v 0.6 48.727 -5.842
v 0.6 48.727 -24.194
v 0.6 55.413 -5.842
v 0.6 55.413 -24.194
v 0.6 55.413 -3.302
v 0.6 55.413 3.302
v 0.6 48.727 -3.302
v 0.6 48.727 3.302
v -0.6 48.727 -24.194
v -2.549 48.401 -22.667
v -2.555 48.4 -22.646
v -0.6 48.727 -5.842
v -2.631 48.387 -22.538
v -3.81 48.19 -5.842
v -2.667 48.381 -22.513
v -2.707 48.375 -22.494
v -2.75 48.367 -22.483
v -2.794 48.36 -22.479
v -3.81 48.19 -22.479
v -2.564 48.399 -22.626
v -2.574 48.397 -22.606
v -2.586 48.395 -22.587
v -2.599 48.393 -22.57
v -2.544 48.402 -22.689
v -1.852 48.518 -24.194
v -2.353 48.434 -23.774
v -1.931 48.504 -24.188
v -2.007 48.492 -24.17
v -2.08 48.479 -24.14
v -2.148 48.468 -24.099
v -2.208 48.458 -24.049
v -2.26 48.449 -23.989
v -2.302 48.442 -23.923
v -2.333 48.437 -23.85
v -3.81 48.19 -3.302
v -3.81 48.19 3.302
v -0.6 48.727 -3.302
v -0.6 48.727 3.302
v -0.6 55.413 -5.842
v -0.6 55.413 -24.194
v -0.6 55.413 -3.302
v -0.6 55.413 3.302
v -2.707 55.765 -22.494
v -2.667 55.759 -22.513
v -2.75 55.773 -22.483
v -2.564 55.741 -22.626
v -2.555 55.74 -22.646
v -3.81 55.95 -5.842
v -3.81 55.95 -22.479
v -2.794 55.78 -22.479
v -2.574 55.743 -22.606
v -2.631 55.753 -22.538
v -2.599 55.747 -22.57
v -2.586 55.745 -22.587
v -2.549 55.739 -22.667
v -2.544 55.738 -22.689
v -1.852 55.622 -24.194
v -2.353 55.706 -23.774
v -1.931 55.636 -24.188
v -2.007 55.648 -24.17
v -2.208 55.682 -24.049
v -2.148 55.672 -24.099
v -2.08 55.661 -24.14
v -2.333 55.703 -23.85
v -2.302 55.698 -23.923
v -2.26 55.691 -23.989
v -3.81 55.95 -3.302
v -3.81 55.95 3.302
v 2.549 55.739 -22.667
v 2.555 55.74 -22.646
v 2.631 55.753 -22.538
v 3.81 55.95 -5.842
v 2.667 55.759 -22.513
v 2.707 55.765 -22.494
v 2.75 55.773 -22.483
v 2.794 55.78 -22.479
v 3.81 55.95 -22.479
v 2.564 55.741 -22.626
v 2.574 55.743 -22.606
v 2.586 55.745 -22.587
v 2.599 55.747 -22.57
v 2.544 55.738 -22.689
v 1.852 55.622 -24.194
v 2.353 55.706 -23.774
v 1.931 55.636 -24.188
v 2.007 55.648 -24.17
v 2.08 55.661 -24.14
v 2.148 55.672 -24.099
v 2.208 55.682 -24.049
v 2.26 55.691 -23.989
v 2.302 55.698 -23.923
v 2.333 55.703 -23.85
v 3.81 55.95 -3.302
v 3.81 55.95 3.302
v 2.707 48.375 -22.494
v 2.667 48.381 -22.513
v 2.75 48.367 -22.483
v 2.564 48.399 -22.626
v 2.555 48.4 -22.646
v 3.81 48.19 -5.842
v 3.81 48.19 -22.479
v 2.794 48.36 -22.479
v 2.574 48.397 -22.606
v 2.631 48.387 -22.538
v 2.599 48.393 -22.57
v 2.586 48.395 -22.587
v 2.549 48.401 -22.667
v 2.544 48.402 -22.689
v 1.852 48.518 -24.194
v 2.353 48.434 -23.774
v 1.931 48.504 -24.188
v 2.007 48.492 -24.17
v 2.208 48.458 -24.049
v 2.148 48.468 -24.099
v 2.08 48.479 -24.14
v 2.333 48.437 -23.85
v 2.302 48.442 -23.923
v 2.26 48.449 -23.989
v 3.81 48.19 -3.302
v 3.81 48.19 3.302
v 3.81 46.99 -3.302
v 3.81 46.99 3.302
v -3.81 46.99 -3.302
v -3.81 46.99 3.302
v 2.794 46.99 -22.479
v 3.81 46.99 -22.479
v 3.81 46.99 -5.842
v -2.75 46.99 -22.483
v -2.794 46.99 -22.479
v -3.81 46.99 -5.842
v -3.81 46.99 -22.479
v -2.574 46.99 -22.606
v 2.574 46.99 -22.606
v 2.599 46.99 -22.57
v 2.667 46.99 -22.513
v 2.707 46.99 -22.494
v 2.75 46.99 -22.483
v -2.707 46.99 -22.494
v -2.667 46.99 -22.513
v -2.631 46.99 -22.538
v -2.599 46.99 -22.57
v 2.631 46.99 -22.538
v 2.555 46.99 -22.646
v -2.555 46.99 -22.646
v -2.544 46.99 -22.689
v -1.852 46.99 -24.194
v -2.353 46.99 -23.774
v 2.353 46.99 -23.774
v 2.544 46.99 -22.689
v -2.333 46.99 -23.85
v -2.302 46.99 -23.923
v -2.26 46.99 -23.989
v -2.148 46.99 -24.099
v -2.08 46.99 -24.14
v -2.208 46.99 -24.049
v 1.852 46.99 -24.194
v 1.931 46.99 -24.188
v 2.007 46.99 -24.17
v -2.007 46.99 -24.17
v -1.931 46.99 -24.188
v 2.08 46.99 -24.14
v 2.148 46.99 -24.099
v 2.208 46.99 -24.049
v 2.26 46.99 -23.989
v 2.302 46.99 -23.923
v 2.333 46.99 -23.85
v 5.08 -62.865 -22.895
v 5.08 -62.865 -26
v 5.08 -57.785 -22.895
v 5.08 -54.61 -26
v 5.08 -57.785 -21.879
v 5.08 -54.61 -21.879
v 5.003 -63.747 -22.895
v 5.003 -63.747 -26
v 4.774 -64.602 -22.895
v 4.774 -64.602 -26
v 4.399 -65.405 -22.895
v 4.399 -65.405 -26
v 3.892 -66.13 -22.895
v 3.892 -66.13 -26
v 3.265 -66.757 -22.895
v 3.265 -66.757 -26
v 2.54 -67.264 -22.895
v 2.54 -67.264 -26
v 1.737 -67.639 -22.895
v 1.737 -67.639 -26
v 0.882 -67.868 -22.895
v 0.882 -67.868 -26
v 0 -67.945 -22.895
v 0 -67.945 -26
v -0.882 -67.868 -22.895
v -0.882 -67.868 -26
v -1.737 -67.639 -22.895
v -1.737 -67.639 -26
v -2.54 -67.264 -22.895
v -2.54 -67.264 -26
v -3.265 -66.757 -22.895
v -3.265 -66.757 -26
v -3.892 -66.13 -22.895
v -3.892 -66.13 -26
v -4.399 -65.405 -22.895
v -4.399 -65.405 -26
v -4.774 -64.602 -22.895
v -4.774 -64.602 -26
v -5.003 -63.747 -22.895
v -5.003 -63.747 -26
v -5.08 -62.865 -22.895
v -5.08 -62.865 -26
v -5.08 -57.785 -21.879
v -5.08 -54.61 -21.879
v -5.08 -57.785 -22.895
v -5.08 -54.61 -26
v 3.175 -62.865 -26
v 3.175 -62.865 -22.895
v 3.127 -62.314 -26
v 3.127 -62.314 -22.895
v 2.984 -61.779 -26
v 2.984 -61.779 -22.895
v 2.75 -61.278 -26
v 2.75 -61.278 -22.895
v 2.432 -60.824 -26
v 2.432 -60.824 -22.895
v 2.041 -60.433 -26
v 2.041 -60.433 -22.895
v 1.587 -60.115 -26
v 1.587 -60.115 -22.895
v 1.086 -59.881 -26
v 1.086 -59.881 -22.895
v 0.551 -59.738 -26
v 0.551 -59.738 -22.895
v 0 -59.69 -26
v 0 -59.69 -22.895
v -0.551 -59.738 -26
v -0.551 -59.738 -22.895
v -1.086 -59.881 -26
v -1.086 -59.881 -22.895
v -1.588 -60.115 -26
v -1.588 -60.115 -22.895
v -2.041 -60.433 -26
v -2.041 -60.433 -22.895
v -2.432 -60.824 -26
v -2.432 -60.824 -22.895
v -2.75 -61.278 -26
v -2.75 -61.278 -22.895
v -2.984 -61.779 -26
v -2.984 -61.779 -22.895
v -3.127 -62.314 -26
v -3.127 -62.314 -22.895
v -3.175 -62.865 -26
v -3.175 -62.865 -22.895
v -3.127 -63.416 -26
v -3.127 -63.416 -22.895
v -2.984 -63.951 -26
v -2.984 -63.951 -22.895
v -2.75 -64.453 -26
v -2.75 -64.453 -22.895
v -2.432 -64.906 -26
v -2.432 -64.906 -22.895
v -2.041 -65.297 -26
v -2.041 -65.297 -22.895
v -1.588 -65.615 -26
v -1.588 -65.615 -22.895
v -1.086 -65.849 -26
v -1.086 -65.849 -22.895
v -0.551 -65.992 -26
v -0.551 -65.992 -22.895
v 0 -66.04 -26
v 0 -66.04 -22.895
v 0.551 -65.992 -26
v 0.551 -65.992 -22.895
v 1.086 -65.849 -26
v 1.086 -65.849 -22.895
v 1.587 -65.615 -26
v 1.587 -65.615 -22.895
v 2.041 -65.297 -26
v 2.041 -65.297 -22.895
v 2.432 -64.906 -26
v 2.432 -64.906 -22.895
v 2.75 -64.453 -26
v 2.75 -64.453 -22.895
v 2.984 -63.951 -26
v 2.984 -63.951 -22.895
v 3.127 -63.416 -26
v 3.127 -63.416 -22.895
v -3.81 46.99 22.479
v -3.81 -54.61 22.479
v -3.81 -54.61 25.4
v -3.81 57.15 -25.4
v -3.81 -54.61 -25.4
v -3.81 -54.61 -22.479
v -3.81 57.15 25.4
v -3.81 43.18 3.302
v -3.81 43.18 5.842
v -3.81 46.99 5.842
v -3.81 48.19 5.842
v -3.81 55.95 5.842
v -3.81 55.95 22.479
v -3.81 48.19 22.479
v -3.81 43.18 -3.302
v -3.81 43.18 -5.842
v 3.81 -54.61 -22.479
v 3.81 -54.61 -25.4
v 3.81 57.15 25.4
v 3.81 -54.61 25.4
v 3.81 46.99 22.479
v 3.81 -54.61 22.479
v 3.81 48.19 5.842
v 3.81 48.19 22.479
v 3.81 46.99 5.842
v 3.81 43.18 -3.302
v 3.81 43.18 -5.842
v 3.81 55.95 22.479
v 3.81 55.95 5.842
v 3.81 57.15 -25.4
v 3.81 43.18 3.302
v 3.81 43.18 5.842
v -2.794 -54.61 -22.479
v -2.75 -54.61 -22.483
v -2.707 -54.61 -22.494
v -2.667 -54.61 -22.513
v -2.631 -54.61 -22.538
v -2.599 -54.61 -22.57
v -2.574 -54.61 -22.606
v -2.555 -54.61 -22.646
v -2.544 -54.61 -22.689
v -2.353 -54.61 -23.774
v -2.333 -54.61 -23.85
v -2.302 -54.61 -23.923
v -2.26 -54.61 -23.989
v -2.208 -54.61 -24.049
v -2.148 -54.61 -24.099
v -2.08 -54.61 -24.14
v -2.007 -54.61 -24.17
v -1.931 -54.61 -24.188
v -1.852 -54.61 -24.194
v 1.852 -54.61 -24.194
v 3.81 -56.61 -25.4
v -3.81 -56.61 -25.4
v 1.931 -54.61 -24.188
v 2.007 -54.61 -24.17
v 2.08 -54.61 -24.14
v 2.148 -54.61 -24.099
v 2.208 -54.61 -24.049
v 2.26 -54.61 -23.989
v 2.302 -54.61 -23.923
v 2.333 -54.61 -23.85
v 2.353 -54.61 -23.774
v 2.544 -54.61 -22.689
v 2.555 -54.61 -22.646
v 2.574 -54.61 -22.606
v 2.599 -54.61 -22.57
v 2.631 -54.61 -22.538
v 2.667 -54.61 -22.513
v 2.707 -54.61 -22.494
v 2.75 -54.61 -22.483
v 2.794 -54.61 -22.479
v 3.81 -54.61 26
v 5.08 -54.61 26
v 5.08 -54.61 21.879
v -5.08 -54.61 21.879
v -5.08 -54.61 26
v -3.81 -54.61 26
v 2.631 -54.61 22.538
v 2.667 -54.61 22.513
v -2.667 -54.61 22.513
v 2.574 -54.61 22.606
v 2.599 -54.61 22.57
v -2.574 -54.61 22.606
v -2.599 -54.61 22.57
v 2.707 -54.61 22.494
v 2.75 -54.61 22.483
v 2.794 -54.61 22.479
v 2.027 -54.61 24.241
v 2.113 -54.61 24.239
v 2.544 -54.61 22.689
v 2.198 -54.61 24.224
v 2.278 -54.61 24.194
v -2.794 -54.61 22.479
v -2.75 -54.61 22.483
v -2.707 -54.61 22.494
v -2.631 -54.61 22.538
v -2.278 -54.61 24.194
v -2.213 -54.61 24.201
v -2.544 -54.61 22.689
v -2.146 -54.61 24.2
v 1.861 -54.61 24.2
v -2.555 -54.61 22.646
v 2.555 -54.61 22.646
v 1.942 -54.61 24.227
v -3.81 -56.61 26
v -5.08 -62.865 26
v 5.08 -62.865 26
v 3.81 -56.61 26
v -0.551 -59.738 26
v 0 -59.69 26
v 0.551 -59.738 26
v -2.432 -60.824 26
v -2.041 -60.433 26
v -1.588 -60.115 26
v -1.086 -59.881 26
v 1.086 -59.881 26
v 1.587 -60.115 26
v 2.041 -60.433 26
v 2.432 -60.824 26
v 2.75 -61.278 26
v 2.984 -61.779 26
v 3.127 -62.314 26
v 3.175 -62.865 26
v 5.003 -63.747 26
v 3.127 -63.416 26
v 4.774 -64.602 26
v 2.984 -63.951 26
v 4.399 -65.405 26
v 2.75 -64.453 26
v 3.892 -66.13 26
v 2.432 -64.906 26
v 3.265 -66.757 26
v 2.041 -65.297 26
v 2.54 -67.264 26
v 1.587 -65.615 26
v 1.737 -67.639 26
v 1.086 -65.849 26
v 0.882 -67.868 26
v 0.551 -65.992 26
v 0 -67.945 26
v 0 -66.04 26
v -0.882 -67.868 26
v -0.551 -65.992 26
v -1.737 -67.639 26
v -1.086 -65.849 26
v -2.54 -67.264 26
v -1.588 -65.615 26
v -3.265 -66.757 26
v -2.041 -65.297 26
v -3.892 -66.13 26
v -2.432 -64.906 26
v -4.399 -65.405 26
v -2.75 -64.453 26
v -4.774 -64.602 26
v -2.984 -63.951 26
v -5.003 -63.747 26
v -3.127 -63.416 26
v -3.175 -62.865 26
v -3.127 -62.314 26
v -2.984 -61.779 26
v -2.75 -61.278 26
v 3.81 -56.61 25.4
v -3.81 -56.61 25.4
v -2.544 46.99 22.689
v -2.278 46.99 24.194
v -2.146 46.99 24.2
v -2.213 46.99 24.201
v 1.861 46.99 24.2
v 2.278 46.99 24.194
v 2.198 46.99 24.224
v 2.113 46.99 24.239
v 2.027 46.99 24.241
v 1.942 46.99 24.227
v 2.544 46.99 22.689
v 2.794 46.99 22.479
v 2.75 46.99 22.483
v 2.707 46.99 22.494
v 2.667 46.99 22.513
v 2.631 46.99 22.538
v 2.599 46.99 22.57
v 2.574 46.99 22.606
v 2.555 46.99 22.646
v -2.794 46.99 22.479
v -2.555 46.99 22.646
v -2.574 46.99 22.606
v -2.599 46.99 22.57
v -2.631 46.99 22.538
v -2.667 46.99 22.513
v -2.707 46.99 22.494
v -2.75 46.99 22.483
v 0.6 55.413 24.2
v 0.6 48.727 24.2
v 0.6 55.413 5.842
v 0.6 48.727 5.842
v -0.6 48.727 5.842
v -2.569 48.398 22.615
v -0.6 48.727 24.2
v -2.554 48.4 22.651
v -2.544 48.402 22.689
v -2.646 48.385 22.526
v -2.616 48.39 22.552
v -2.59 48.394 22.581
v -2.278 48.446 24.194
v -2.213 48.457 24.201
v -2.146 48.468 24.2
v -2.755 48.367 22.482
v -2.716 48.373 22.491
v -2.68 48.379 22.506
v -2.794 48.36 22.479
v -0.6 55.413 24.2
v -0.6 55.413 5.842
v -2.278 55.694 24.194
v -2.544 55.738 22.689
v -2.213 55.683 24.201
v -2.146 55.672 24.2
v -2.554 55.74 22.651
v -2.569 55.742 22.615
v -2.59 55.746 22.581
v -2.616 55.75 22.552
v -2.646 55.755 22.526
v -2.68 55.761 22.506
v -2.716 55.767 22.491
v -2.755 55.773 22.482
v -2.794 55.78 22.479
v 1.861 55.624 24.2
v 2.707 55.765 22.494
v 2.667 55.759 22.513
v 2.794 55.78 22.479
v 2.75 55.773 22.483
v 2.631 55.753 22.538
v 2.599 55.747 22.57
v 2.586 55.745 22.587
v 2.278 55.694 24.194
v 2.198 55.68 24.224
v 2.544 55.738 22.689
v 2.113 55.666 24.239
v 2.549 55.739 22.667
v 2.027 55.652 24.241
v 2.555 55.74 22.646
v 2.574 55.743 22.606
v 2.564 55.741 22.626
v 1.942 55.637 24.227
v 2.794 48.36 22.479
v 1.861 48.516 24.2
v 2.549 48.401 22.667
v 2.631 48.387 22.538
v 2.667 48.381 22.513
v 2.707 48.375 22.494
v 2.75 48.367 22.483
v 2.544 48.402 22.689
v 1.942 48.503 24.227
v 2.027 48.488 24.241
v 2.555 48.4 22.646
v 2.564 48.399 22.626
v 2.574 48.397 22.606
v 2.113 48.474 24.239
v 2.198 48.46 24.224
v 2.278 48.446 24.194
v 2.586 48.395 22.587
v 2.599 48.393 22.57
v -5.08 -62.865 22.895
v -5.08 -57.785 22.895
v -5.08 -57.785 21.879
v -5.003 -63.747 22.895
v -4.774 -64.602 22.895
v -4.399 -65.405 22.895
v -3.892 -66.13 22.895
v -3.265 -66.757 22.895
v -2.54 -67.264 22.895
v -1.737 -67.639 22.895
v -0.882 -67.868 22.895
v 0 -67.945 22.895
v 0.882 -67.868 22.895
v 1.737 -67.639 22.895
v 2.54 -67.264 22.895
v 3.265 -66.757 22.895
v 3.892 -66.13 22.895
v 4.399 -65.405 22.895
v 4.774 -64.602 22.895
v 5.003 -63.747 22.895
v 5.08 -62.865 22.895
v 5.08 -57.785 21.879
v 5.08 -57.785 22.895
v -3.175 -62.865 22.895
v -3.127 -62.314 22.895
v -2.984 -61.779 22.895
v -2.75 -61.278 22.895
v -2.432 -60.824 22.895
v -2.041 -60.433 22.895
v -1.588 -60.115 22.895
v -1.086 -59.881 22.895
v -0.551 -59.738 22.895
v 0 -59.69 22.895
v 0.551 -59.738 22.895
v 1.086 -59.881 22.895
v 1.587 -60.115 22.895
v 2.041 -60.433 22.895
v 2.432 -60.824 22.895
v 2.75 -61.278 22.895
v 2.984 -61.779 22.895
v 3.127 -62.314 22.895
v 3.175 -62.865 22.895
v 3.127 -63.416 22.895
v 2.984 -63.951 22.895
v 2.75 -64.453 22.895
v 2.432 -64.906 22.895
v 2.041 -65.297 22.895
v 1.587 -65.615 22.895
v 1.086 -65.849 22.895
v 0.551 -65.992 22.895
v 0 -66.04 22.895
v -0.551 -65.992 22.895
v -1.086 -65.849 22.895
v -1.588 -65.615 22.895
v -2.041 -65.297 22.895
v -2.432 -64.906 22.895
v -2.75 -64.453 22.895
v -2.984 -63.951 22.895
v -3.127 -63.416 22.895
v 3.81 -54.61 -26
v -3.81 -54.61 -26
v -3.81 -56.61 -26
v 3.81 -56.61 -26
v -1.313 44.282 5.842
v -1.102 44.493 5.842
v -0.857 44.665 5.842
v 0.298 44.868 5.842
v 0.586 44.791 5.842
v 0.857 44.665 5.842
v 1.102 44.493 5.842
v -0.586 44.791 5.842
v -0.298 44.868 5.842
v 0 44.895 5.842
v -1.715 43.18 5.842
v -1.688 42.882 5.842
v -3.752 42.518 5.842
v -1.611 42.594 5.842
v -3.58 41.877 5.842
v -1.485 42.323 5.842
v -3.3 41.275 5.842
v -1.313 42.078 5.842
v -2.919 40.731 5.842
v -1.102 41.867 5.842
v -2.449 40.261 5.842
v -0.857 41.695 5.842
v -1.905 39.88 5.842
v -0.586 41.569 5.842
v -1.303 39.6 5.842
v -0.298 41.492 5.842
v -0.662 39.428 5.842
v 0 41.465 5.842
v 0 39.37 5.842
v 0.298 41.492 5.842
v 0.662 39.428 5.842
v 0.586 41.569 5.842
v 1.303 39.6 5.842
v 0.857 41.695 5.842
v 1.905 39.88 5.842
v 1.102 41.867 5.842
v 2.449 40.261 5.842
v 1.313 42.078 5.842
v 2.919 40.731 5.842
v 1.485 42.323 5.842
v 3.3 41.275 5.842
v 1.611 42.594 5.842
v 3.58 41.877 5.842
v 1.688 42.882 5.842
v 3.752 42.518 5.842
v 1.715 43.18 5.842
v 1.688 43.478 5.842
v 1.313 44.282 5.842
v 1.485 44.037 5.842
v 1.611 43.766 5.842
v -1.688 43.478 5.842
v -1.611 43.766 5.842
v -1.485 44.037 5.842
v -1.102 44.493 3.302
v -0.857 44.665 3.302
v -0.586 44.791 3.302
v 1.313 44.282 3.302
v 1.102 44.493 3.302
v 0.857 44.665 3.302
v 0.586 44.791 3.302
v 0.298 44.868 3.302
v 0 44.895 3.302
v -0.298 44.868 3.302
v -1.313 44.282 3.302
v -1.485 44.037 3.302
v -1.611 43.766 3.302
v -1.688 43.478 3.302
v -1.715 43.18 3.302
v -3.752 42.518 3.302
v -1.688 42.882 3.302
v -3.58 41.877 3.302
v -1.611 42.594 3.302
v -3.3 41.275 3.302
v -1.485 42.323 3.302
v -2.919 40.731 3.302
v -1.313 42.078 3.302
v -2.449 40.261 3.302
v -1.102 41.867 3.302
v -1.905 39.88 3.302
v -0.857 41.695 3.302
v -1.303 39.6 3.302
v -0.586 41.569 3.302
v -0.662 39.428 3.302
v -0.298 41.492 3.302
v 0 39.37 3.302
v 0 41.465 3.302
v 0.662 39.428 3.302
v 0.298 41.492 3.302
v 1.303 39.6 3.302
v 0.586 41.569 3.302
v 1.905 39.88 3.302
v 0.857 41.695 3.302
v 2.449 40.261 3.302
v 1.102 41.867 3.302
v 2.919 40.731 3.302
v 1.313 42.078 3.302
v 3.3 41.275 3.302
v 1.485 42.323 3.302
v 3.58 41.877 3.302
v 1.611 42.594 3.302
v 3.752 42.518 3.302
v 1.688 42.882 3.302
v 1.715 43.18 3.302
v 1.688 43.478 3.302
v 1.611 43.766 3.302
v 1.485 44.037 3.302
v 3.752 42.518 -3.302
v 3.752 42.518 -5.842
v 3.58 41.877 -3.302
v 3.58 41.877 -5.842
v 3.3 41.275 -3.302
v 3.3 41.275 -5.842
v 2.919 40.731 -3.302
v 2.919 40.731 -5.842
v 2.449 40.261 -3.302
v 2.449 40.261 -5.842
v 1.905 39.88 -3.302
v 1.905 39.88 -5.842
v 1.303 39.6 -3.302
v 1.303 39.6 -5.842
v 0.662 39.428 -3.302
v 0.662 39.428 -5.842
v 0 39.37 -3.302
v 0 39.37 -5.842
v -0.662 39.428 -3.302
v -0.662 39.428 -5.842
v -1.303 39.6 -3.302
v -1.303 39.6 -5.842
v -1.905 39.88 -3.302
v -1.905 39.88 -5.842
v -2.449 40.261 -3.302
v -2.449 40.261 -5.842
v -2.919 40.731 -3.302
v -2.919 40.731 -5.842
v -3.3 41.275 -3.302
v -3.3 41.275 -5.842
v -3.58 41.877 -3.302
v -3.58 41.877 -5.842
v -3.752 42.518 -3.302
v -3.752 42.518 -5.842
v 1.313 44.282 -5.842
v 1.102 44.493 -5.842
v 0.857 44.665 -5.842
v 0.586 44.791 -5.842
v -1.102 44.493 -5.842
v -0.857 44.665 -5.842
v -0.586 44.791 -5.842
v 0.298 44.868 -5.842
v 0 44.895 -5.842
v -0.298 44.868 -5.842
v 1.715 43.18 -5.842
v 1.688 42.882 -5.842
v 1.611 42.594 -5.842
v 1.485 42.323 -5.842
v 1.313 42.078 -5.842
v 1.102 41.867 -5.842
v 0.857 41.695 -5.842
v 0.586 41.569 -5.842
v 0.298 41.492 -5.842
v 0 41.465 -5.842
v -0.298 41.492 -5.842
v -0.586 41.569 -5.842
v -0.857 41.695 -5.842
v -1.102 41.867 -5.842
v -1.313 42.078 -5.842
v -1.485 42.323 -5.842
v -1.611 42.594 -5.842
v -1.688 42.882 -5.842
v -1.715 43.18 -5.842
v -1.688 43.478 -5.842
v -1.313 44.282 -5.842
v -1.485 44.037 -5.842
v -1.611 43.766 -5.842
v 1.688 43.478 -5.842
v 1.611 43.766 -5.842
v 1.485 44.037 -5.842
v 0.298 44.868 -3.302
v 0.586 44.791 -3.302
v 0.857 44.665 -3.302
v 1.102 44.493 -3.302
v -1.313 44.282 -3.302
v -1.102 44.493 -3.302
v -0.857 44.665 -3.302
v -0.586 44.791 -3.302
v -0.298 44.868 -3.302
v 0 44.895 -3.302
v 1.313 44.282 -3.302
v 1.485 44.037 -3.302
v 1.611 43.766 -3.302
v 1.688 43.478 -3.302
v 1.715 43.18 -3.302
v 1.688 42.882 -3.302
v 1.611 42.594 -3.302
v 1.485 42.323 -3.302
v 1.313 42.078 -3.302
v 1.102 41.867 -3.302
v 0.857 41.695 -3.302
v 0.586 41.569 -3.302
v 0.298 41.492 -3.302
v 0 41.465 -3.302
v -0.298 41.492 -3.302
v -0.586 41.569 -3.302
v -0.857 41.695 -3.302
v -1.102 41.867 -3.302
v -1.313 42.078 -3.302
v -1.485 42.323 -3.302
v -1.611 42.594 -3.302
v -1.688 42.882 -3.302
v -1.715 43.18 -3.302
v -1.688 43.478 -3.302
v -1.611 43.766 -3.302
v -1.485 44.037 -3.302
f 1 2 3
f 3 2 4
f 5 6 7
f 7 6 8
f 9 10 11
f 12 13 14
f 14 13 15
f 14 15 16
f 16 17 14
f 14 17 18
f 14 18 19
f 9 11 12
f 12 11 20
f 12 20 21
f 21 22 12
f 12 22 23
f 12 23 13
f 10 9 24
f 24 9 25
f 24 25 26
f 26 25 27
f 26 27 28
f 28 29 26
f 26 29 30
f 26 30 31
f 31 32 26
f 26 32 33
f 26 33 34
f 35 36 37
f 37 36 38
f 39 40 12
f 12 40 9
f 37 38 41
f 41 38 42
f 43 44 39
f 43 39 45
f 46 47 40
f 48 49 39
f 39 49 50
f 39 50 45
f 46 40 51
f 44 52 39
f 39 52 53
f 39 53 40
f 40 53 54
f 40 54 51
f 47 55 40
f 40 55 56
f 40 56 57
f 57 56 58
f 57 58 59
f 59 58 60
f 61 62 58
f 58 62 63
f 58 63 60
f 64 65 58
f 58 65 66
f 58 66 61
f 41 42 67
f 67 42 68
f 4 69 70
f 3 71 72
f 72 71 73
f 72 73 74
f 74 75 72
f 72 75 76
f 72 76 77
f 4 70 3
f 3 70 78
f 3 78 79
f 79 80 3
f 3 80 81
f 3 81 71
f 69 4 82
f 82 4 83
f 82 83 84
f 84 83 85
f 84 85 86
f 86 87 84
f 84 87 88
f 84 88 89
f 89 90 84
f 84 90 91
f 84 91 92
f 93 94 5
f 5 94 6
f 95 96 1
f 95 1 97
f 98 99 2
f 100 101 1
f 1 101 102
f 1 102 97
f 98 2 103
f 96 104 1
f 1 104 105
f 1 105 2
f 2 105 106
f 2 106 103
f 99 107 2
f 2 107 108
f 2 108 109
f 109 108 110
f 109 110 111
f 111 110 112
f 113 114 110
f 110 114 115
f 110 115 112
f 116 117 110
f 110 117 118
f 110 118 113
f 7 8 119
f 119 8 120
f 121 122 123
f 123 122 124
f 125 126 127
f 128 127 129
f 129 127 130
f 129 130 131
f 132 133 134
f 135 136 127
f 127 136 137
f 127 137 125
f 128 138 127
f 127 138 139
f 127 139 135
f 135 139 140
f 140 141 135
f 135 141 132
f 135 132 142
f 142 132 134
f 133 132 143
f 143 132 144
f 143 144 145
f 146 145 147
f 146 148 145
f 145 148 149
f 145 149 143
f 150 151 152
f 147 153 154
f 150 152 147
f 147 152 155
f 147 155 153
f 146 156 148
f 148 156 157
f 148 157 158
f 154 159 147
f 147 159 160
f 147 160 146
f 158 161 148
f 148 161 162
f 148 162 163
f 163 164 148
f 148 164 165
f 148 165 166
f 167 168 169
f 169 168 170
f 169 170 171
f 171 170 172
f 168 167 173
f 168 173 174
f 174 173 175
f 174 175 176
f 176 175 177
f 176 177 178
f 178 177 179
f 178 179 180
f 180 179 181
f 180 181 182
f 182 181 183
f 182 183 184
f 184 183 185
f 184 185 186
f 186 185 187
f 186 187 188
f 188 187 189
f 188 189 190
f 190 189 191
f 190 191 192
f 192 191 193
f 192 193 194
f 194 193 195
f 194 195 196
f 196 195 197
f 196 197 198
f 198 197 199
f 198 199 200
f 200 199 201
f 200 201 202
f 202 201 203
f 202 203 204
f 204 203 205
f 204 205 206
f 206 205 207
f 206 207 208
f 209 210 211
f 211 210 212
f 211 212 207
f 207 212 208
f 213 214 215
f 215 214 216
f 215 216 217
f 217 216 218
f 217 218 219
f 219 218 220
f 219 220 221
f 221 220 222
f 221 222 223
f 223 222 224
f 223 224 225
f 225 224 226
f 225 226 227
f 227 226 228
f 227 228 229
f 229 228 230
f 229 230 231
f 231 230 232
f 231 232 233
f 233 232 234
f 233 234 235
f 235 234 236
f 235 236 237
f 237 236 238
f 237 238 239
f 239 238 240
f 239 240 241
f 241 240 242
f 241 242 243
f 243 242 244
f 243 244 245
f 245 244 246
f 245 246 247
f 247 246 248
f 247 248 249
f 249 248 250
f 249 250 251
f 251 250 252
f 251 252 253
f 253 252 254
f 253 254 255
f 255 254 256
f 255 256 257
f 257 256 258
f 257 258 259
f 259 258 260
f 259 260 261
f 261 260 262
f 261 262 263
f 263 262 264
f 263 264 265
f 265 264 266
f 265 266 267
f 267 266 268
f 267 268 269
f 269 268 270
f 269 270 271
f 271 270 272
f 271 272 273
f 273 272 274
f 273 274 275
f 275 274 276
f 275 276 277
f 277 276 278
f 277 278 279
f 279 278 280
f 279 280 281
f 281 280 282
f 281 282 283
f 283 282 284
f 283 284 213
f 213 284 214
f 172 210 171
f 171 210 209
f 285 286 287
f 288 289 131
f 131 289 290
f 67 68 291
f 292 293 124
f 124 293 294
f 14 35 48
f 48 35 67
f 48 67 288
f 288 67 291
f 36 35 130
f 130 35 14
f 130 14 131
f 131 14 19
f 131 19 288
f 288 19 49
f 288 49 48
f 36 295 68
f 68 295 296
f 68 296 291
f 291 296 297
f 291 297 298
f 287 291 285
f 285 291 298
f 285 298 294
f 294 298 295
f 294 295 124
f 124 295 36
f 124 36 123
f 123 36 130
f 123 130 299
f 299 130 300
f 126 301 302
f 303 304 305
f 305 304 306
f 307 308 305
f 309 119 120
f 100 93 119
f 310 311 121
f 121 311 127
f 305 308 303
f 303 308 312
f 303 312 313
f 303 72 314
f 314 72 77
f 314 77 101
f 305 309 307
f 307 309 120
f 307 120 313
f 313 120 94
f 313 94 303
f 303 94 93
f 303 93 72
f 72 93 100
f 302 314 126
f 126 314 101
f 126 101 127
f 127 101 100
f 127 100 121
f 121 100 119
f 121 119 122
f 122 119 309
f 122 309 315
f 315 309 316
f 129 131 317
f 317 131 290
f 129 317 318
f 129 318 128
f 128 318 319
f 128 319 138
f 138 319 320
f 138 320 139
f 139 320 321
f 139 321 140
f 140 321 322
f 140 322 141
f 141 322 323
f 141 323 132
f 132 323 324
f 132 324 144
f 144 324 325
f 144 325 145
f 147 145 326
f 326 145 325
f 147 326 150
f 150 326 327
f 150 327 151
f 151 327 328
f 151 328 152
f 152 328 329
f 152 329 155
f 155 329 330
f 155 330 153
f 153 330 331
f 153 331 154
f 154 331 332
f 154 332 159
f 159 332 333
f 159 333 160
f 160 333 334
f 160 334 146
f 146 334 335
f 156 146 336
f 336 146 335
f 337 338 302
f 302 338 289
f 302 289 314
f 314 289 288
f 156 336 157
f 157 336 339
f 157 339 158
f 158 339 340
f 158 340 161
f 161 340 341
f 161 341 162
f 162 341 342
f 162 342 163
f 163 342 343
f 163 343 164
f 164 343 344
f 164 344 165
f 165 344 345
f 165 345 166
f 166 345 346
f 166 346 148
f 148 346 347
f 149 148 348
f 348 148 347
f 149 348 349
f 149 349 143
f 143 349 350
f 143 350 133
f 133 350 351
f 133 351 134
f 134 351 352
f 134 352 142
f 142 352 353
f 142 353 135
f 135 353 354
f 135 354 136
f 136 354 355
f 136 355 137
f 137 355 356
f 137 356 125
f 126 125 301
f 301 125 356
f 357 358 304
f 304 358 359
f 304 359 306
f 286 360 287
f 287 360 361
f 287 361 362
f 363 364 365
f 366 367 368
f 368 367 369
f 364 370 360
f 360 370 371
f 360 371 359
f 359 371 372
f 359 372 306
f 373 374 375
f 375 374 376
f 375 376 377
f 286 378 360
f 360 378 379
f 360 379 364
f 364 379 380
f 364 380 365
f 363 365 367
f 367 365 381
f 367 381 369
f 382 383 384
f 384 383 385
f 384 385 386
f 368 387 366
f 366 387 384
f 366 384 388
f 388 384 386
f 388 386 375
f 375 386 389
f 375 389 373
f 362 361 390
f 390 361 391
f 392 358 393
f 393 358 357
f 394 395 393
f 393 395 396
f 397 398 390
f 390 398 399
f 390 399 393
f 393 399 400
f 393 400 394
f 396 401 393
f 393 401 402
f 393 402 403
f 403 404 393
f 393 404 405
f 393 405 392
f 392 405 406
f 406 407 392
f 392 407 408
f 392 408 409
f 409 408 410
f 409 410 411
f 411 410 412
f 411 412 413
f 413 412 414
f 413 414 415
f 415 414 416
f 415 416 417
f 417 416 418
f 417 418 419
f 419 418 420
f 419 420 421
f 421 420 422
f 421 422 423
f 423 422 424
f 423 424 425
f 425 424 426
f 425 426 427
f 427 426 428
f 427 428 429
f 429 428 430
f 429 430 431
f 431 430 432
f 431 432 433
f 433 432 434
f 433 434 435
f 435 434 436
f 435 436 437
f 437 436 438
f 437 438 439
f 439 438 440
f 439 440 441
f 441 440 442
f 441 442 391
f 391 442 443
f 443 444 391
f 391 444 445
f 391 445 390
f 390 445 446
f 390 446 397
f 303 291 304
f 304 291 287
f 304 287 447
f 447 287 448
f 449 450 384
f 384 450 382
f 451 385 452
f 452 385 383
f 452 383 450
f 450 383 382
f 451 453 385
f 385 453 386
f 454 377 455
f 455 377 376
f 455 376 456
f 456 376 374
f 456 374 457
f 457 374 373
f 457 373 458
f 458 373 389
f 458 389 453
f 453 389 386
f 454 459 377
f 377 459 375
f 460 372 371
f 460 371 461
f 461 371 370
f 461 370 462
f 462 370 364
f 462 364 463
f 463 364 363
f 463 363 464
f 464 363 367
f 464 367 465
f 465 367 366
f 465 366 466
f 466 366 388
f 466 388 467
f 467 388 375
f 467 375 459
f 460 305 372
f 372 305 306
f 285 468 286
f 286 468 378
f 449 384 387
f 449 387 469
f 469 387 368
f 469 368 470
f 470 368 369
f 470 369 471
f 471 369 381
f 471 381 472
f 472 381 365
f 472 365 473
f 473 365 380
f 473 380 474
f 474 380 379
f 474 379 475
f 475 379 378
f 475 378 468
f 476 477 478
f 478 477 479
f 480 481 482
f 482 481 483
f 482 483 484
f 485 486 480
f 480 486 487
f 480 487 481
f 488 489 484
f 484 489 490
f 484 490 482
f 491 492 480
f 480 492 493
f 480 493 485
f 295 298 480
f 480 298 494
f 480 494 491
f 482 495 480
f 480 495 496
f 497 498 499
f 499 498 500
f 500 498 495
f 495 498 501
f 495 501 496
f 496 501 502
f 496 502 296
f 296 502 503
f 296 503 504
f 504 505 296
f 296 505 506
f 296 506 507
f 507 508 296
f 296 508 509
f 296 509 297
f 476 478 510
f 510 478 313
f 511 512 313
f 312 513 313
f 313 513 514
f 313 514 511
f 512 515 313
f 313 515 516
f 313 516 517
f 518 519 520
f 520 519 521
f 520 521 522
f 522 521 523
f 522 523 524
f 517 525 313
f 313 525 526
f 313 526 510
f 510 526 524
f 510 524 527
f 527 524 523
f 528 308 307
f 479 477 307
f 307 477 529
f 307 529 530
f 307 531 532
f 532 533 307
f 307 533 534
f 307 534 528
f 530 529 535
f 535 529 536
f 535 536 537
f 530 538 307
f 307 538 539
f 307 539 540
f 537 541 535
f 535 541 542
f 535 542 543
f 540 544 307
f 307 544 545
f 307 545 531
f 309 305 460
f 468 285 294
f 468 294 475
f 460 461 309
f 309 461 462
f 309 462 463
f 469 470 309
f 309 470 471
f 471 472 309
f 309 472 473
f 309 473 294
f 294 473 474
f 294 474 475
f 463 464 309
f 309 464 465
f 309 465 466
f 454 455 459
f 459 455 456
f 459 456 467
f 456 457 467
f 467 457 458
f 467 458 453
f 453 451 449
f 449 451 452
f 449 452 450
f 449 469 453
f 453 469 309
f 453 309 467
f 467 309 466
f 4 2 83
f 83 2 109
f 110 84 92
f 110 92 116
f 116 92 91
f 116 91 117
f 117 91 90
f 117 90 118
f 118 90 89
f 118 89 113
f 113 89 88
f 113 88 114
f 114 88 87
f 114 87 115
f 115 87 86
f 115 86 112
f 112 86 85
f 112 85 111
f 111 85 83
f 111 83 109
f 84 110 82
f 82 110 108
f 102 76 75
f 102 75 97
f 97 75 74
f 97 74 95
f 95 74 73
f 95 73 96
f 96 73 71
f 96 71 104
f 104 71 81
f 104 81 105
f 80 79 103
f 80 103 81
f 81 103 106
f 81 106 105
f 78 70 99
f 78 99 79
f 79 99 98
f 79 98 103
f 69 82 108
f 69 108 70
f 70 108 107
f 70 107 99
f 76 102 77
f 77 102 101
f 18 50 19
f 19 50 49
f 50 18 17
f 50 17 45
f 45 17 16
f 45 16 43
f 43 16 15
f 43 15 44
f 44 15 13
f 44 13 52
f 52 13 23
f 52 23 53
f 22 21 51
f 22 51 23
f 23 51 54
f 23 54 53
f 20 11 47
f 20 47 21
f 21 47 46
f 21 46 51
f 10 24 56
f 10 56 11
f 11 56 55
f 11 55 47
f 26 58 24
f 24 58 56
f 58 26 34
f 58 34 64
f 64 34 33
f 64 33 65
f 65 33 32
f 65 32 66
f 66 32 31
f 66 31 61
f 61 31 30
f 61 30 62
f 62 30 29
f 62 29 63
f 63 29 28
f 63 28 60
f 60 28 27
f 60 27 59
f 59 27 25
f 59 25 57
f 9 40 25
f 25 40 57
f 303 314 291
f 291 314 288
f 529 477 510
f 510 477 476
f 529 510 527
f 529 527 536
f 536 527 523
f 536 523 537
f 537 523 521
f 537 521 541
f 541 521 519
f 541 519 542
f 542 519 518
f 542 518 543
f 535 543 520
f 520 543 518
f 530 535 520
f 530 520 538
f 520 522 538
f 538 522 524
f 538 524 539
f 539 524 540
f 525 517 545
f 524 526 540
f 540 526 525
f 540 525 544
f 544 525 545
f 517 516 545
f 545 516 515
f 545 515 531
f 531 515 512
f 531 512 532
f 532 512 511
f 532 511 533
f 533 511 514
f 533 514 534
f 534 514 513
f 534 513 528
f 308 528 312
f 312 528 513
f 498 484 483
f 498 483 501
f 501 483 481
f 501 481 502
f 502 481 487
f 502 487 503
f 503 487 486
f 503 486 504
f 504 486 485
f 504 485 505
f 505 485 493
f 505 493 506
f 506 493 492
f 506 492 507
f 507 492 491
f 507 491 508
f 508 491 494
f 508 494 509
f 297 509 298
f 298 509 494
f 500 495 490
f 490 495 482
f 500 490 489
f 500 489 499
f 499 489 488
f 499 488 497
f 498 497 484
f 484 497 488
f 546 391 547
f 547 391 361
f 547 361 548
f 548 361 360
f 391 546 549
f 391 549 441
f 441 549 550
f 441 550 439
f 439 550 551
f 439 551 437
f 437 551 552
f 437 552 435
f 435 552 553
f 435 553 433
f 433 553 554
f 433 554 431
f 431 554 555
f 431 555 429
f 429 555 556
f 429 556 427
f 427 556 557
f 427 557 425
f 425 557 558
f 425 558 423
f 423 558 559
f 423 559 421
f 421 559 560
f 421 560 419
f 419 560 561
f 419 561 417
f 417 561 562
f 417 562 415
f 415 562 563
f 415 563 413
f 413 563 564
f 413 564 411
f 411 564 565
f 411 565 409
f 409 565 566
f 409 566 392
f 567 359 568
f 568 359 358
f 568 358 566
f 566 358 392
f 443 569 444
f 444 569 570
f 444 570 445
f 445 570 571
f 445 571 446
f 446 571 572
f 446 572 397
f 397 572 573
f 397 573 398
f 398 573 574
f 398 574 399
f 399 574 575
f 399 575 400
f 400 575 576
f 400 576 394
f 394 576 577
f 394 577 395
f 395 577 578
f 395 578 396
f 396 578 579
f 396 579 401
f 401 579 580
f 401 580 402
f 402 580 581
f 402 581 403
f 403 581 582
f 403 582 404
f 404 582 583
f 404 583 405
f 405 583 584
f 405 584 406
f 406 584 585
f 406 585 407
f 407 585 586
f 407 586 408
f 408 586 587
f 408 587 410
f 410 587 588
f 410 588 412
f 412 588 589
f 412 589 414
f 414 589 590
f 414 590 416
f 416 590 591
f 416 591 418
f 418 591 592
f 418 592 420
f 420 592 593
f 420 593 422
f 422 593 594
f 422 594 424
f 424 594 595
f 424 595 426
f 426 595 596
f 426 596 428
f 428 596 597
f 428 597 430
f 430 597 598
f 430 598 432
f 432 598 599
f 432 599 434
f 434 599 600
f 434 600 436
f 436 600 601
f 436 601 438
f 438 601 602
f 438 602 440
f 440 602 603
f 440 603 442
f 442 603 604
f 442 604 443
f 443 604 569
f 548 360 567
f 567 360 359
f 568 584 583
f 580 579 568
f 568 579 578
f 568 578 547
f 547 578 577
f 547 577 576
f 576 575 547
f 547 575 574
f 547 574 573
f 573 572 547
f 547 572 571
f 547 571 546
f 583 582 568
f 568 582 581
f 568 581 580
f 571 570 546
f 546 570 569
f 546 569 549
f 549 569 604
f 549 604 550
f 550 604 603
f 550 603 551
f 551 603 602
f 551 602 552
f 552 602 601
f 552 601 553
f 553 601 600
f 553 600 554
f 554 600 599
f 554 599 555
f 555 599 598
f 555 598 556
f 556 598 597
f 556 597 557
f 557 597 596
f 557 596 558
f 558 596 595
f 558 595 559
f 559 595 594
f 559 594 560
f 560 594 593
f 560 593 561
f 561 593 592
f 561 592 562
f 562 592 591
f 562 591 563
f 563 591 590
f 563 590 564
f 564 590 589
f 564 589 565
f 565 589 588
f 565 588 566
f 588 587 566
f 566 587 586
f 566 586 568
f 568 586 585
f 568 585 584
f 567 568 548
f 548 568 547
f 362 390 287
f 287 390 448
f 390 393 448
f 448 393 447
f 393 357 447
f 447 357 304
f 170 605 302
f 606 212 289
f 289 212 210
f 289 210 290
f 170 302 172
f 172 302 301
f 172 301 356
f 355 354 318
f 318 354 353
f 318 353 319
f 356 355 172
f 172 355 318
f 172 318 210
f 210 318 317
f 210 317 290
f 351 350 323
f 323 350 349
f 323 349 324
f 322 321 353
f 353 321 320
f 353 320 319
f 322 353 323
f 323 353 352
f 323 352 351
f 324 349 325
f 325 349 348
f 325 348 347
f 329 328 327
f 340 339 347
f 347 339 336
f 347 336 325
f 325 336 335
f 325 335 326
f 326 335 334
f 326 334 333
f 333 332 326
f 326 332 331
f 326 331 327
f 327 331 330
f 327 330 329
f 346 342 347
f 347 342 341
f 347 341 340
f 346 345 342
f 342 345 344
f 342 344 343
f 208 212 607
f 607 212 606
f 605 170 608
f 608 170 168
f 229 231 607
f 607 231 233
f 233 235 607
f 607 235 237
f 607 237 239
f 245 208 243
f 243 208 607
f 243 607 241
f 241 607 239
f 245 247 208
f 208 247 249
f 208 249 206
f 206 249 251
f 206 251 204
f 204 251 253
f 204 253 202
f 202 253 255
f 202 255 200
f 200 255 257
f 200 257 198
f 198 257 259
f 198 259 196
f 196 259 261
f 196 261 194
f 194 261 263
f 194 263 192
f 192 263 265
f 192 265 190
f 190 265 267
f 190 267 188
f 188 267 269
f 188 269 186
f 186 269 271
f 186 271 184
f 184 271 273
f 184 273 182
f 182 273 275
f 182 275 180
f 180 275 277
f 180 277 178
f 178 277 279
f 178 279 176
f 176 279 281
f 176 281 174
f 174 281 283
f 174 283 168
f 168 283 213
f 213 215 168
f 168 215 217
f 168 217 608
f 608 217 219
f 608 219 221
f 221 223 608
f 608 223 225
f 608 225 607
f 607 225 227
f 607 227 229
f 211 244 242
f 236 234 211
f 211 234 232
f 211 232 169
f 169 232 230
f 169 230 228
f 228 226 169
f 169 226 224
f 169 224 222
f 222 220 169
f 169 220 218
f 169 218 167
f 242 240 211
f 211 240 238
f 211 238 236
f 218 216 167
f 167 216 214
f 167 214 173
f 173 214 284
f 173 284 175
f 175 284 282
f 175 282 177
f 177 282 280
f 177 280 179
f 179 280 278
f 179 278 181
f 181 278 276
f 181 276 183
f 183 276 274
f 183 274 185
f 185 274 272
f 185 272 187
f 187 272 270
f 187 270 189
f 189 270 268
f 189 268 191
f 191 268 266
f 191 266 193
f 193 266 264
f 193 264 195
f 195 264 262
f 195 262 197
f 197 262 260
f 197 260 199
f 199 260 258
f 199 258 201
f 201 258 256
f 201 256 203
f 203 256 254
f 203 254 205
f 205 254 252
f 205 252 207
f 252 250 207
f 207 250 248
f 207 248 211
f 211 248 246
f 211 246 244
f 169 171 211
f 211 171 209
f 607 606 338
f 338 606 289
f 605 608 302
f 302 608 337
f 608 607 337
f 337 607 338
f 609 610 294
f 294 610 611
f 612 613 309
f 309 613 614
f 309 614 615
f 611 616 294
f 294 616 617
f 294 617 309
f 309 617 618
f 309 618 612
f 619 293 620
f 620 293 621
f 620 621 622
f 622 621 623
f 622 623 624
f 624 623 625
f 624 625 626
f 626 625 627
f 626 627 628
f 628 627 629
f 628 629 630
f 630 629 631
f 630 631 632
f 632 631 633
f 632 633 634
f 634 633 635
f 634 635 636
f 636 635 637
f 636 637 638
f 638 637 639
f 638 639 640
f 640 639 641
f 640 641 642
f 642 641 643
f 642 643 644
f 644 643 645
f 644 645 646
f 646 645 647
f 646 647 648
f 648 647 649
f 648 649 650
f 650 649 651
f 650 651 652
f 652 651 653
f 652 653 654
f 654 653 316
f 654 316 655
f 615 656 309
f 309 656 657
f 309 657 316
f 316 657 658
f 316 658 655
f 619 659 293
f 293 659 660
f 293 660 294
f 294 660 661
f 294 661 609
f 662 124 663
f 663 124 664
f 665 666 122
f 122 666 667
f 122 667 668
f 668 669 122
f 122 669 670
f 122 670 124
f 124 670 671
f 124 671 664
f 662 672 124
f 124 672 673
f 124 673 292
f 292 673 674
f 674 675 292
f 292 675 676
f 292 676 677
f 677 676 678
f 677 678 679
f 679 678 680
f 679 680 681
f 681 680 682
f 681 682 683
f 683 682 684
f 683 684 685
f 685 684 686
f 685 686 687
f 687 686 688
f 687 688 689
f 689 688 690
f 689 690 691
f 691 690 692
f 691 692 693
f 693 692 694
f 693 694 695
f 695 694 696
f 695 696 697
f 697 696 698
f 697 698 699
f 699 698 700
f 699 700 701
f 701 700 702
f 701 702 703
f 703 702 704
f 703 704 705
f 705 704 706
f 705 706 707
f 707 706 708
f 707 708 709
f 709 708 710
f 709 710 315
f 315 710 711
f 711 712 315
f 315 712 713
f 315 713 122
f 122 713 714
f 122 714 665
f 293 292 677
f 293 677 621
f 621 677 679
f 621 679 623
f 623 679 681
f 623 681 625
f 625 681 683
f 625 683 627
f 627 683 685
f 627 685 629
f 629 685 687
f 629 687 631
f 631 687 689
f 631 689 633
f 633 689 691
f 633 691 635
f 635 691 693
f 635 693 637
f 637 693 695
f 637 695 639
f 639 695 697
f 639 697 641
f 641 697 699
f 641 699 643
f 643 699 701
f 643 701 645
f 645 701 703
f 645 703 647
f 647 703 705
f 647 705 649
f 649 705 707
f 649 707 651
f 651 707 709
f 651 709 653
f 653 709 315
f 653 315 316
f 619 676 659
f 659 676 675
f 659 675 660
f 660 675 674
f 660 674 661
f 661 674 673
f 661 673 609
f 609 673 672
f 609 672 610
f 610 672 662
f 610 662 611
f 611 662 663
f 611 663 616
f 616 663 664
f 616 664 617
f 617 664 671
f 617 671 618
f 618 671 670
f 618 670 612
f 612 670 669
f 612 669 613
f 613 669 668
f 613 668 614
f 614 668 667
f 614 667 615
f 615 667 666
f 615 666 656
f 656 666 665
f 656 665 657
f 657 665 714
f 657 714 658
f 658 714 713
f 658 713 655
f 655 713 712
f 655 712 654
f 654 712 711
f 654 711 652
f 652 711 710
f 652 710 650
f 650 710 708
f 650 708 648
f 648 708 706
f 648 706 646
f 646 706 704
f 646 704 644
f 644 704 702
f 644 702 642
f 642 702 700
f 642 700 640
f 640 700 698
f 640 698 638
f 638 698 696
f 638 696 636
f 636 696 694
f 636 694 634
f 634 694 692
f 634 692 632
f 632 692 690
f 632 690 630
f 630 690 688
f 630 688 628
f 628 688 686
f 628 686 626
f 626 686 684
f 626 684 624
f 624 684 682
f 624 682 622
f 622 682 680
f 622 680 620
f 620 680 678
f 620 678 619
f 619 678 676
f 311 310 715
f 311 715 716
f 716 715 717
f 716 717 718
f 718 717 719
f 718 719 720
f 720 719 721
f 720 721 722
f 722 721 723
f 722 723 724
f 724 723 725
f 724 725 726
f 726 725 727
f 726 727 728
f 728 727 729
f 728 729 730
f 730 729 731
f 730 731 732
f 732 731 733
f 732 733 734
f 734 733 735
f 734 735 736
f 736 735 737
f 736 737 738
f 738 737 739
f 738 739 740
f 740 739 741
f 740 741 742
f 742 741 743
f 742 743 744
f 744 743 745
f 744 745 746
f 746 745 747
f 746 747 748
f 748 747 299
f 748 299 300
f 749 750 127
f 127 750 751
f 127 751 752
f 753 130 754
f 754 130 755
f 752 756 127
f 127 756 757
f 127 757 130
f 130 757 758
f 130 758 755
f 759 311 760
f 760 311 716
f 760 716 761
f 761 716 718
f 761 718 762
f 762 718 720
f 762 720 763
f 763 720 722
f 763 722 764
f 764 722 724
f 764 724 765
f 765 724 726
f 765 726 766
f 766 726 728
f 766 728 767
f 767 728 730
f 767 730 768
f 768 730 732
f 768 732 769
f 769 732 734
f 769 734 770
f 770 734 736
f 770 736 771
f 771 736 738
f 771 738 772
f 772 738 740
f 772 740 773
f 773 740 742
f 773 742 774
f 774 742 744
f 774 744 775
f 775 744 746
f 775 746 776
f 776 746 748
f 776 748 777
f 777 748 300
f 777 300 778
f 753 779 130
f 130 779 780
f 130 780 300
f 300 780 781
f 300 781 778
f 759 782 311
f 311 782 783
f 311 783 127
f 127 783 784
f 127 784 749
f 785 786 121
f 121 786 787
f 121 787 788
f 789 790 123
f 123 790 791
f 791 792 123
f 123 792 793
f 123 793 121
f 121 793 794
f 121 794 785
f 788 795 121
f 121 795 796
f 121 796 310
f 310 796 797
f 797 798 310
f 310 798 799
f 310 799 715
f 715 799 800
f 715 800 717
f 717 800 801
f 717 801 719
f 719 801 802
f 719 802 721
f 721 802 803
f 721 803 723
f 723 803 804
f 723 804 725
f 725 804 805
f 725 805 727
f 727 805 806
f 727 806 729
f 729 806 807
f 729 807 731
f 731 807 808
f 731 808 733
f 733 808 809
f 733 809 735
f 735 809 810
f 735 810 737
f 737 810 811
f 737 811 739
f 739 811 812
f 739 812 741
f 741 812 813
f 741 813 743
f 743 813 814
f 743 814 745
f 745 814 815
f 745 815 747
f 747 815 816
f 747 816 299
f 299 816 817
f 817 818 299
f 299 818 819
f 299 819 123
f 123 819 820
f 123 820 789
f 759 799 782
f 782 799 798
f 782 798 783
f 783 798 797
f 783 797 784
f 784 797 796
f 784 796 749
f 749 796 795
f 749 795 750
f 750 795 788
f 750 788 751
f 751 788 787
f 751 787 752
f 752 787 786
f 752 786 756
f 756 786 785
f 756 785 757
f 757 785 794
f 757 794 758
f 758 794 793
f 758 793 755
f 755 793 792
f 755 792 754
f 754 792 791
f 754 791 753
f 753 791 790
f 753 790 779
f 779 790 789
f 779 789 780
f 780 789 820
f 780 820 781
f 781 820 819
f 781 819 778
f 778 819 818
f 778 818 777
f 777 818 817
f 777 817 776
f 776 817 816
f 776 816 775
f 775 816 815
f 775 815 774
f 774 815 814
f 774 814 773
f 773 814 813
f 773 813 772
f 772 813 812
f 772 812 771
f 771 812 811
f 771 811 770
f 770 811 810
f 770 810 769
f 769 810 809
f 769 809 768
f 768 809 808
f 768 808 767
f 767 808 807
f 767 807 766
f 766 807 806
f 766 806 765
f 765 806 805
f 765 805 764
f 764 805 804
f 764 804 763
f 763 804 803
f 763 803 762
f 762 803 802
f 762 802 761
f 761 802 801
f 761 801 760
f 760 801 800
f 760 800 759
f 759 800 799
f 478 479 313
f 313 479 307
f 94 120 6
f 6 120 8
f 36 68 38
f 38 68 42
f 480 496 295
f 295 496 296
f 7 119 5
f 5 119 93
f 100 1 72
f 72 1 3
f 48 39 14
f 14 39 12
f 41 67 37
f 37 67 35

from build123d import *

# Parameters (mm, degrees)
BOSS_EXTRUDE1_DEPTH      = 57.15
BOSS_EXTRUDE1_2_DEPTH    = 57.15
BOSS_EXTRUDE2_DEPTH      = 50.8
BOSS_EXTRUDE3_DEPTH      = 0.6
BOSS_EXTRUDE3_DEPTH_BACK = 3.521
SKETCH3_R                = 3.175
SKETCH4_W                = 1.016
SKETCH4_H                = 10.16
CUT_EXTRUDE1_DEPTH       = 74.455759645
SKETCH5_W                = 7.62
SKETCH5_H                = 2
CUT_EXTRUDE2_DEPTH       = 85.988054602
BOSS_EXTRUDE6_DEPTH      = 0.6
BOSS_EXTRUDE6_DEPTH_BACK = 3.521
SKETCH6_R                = 3.175
BOSS_EXTRUDE7_START      = 3.302
SKETCH7_R                = 1.7145
BOSS_EXTRUDE7_DEPTH      = 2.54
SKETCH8_W                = 2.54
SKETCH8_H                = 7.76
BOSS_EXTRUDE8_DEPTH      = 7.62


with BuildPart() as part:
    # Sketch1 → Boss-Extrude1 (new, symmetric)
    with BuildSketch(Plane(origin=(0, 0, 0), x_dir=(1, 0, 0), z_dir=(0, 1, 0))):
        with BuildLine():
            Line((-3.81, 25.4), (-3.81, 22.479))
            Line((-3.81, 22.479), (-2.794, 22.479))
            ThreePointArc((-2.794, 22.479), (-2.630731947, 22.538424711), (-2.543858831, 22.688893363))
            Line((-2.543858831, 22.688893363), (-2.352506152, 23.774108332))
            ThreePointArc((-2.352506152, 23.774108332), (-2.178759919, 24.075045635), (-1.852223813, 24.193895058))
            Line((-1.852223813, 24.193895058), (1.852223813, 24.193895058))
            ThreePointArc((1.852223813, 24.193895058), (2.178759919, 24.075045635), (2.352506152, 23.774108332))
            Line((2.352506152, 23.774108332), (2.543858831, 22.688893363))
            ThreePointArc((2.543858831, 22.688893363), (2.630731947, 22.538424711), (2.794, 22.479))
            Line((2.794, 22.479), (3.81, 22.479))
            Line((3.81, 22.479), (3.81, 25.4))
            Line((3.81, 25.4), (-3.81, 25.4))
        make_face()
    extrude(amount=BOSS_EXTRUDE1_DEPTH, both=True)



with BuildPart() as body_2:
    # Sketch1 → Boss-Extrude1 2 (new, symmetric)
    with BuildSketch(Plane(origin=(0, 0, 0), x_dir=(1, 0, 0), z_dir=(0, 1, 0))):
        with BuildLine():
            Line((-2.278486426, -24.193895058), (-2.543858831, -22.688893363))
            ThreePointArc((-2.543858831, -22.688893363), (-2.630731947, -22.538424711), (-2.794, -22.479))
            Line((-2.794, -22.479), (-3.81, -22.479))
            Line((-3.81, -22.479), (-3.81, -25.4))
            Line((-3.81, -25.4), (3.81, -25.4))
            Line((3.81, -25.4), (3.81, -22.479))
            Line((3.81, -22.479), (2.794, -22.479))
            ThreePointArc((2.794, -22.479), (2.630731947, -22.538424711), (2.543858831, -22.688893363))
            Line((2.543858831, -22.688893363), (2.278486426, -24.193895058))
            ThreePointArc((2.278486426, -24.193895058), (2.070186355, -24.241918271), (1.860572408, -24.2))
            Line((1.860572408, -24.2), (-2.146199428, -24.2))
            ThreePointArc((-2.146199428, -24.2), (-2.212542712, -24.201276643), (-2.278486426, -24.193895058))
        make_face()
    extrude(amount=BOSS_EXTRUDE1_2_DEPTH, both=True)


with BuildPart() as part_1:
    add(part.part)

    add(body_2.part)  # Boss-Extrude2 merges body 2
    # Sketch2 → Boss-Extrude2 (add)
    with BuildSketch(Plane.XY.offset(25.4)):
        Polygon((-3.81, 57.15), (3.81, 57.15), (3.81, 55.95), (0.6, 55.412830225), (0.6, 48.727169775), (3.81, 48.19), (3.81, 46.99), (-3.81, 46.99), (-3.81, 48.19), (-0.6, 48.727169775), (-0.6, 55.412830225), (-3.81, 55.95), align=None)
    extrude(amount=-BOSS_EXTRUDE2_DEPTH)

    # Sketch3 → Boss-Extrude3 (add, two sides: drawn at the far end of the back side and taken through both)
    with BuildSketch(Plane.XY.offset(25.4).offset(-BOSS_EXTRUDE3_DEPTH_BACK)):
        with BuildLine():
            Line((-5.08, -54.61), (5.08, -54.61))
            Line((5.08, -54.61), (5.08, -62.865))
            ThreePointArc((5.08, -62.865), (0, -67.945), (-5.08, -62.865))
            Line((-5.08, -62.865), (-5.08, -54.61))
        make_face()
        with Locations((0, -62.865)):
            Circle(SKETCH3_R, mode=Mode.SUBTRACT)
    extrude(amount=BOSS_EXTRUDE3_DEPTH + BOSS_EXTRUDE3_DEPTH_BACK)

    # Sketch4 → Cut-Extrude1 (cut, through all)
    with BuildSketch(Plane.ZY.offset(5.08)):
        with Locations((22.387, -62.865)):
            Rectangle(SKETCH4_W, SKETCH4_H)
    cut_extrude1 = extrude(amount=-CUT_EXTRUDE1_DEPTH, mode=Mode.SUBTRACT)

    # Sketch5 → Cut-Extrude2 (cut, through all)
    with BuildSketch(Plane.XY.offset(25.4)):
        with Locations((0, -55.61)):
            Rectangle(SKETCH5_W, SKETCH5_H)
    cut_extrude2 = extrude(amount=CUT_EXTRUDE2_DEPTH, mode=Mode.SUBTRACT)

    # Sketch6 → Boss-Extrude6 (add, two sides: drawn at the far end of the back side and taken through both)
    with BuildSketch(Plane(origin=(0, 0, -25.4), x_dir=(-1, 0, 0), z_dir=(0, 0, -1)).offset(-BOSS_EXTRUDE6_DEPTH_BACK)):
        with BuildLine():
            Line((-5.08, -54.61), (5.08, -54.61))
            Line((5.08, -54.61), (5.08, -62.865))
            ThreePointArc((5.08, -62.865), (0, -67.945), (-5.08, -62.865))
            Line((-5.08, -62.865), (-5.08, -54.61))
        make_face()
        with Locations(Location((0, -62.865, 0), (0, 0, 180))):
            Circle(SKETCH6_R, mode=Mode.SUBTRACT)
    extrude(amount=BOSS_EXTRUDE6_DEPTH + BOSS_EXTRUDE6_DEPTH_BACK)

    # Mirror5: Cut-Extrude1 across plane
    add(cut_extrude1.mirror(Plane.XY), mode=Mode.SUBTRACT)

    # Mirror6: Cut-Extrude2 across plane
    add(cut_extrude2.mirror(Plane.XY), mode=Mode.SUBTRACT)

    # Sketch7 → Boss-Extrude7 (add)
    with BuildSketch(Plane.XY.offset(BOSS_EXTRUDE7_START)):
        with BuildLine():
            Line((3.81, 43.18), (3.81, 46.99))
            Line((3.81, 46.99), (-3.81, 46.99))
            Line((-3.81, 46.99), (-3.81, 43.18))
            ThreePointArc((-3.81, 43.18), (0, 39.37), (3.81, 43.18))
        make_face()
        with Locations((0, 43.18)):
            Circle(SKETCH7_R, mode=Mode.SUBTRACT)
    boss_extrude7 = extrude(amount=BOSS_EXTRUDE7_DEPTH)

    # Mirror7: Boss-Extrude7 across plane
    add(boss_extrude7.mirror(Plane.XY))

    # Sketch8 → Boss-Extrude8 (add)
    with BuildSketch(Plane.ZY.offset(3.81)):
        with Locations((4.572, 52.07)):
            Rectangle(SKETCH8_W, SKETCH8_H)
    boss_extrude8 = extrude(amount=-BOSS_EXTRUDE8_DEPTH)

    # Mirror8: Boss-Extrude8 across plane
    add(boss_extrude8.mirror(Plane.XY))


solid = part_1.part
